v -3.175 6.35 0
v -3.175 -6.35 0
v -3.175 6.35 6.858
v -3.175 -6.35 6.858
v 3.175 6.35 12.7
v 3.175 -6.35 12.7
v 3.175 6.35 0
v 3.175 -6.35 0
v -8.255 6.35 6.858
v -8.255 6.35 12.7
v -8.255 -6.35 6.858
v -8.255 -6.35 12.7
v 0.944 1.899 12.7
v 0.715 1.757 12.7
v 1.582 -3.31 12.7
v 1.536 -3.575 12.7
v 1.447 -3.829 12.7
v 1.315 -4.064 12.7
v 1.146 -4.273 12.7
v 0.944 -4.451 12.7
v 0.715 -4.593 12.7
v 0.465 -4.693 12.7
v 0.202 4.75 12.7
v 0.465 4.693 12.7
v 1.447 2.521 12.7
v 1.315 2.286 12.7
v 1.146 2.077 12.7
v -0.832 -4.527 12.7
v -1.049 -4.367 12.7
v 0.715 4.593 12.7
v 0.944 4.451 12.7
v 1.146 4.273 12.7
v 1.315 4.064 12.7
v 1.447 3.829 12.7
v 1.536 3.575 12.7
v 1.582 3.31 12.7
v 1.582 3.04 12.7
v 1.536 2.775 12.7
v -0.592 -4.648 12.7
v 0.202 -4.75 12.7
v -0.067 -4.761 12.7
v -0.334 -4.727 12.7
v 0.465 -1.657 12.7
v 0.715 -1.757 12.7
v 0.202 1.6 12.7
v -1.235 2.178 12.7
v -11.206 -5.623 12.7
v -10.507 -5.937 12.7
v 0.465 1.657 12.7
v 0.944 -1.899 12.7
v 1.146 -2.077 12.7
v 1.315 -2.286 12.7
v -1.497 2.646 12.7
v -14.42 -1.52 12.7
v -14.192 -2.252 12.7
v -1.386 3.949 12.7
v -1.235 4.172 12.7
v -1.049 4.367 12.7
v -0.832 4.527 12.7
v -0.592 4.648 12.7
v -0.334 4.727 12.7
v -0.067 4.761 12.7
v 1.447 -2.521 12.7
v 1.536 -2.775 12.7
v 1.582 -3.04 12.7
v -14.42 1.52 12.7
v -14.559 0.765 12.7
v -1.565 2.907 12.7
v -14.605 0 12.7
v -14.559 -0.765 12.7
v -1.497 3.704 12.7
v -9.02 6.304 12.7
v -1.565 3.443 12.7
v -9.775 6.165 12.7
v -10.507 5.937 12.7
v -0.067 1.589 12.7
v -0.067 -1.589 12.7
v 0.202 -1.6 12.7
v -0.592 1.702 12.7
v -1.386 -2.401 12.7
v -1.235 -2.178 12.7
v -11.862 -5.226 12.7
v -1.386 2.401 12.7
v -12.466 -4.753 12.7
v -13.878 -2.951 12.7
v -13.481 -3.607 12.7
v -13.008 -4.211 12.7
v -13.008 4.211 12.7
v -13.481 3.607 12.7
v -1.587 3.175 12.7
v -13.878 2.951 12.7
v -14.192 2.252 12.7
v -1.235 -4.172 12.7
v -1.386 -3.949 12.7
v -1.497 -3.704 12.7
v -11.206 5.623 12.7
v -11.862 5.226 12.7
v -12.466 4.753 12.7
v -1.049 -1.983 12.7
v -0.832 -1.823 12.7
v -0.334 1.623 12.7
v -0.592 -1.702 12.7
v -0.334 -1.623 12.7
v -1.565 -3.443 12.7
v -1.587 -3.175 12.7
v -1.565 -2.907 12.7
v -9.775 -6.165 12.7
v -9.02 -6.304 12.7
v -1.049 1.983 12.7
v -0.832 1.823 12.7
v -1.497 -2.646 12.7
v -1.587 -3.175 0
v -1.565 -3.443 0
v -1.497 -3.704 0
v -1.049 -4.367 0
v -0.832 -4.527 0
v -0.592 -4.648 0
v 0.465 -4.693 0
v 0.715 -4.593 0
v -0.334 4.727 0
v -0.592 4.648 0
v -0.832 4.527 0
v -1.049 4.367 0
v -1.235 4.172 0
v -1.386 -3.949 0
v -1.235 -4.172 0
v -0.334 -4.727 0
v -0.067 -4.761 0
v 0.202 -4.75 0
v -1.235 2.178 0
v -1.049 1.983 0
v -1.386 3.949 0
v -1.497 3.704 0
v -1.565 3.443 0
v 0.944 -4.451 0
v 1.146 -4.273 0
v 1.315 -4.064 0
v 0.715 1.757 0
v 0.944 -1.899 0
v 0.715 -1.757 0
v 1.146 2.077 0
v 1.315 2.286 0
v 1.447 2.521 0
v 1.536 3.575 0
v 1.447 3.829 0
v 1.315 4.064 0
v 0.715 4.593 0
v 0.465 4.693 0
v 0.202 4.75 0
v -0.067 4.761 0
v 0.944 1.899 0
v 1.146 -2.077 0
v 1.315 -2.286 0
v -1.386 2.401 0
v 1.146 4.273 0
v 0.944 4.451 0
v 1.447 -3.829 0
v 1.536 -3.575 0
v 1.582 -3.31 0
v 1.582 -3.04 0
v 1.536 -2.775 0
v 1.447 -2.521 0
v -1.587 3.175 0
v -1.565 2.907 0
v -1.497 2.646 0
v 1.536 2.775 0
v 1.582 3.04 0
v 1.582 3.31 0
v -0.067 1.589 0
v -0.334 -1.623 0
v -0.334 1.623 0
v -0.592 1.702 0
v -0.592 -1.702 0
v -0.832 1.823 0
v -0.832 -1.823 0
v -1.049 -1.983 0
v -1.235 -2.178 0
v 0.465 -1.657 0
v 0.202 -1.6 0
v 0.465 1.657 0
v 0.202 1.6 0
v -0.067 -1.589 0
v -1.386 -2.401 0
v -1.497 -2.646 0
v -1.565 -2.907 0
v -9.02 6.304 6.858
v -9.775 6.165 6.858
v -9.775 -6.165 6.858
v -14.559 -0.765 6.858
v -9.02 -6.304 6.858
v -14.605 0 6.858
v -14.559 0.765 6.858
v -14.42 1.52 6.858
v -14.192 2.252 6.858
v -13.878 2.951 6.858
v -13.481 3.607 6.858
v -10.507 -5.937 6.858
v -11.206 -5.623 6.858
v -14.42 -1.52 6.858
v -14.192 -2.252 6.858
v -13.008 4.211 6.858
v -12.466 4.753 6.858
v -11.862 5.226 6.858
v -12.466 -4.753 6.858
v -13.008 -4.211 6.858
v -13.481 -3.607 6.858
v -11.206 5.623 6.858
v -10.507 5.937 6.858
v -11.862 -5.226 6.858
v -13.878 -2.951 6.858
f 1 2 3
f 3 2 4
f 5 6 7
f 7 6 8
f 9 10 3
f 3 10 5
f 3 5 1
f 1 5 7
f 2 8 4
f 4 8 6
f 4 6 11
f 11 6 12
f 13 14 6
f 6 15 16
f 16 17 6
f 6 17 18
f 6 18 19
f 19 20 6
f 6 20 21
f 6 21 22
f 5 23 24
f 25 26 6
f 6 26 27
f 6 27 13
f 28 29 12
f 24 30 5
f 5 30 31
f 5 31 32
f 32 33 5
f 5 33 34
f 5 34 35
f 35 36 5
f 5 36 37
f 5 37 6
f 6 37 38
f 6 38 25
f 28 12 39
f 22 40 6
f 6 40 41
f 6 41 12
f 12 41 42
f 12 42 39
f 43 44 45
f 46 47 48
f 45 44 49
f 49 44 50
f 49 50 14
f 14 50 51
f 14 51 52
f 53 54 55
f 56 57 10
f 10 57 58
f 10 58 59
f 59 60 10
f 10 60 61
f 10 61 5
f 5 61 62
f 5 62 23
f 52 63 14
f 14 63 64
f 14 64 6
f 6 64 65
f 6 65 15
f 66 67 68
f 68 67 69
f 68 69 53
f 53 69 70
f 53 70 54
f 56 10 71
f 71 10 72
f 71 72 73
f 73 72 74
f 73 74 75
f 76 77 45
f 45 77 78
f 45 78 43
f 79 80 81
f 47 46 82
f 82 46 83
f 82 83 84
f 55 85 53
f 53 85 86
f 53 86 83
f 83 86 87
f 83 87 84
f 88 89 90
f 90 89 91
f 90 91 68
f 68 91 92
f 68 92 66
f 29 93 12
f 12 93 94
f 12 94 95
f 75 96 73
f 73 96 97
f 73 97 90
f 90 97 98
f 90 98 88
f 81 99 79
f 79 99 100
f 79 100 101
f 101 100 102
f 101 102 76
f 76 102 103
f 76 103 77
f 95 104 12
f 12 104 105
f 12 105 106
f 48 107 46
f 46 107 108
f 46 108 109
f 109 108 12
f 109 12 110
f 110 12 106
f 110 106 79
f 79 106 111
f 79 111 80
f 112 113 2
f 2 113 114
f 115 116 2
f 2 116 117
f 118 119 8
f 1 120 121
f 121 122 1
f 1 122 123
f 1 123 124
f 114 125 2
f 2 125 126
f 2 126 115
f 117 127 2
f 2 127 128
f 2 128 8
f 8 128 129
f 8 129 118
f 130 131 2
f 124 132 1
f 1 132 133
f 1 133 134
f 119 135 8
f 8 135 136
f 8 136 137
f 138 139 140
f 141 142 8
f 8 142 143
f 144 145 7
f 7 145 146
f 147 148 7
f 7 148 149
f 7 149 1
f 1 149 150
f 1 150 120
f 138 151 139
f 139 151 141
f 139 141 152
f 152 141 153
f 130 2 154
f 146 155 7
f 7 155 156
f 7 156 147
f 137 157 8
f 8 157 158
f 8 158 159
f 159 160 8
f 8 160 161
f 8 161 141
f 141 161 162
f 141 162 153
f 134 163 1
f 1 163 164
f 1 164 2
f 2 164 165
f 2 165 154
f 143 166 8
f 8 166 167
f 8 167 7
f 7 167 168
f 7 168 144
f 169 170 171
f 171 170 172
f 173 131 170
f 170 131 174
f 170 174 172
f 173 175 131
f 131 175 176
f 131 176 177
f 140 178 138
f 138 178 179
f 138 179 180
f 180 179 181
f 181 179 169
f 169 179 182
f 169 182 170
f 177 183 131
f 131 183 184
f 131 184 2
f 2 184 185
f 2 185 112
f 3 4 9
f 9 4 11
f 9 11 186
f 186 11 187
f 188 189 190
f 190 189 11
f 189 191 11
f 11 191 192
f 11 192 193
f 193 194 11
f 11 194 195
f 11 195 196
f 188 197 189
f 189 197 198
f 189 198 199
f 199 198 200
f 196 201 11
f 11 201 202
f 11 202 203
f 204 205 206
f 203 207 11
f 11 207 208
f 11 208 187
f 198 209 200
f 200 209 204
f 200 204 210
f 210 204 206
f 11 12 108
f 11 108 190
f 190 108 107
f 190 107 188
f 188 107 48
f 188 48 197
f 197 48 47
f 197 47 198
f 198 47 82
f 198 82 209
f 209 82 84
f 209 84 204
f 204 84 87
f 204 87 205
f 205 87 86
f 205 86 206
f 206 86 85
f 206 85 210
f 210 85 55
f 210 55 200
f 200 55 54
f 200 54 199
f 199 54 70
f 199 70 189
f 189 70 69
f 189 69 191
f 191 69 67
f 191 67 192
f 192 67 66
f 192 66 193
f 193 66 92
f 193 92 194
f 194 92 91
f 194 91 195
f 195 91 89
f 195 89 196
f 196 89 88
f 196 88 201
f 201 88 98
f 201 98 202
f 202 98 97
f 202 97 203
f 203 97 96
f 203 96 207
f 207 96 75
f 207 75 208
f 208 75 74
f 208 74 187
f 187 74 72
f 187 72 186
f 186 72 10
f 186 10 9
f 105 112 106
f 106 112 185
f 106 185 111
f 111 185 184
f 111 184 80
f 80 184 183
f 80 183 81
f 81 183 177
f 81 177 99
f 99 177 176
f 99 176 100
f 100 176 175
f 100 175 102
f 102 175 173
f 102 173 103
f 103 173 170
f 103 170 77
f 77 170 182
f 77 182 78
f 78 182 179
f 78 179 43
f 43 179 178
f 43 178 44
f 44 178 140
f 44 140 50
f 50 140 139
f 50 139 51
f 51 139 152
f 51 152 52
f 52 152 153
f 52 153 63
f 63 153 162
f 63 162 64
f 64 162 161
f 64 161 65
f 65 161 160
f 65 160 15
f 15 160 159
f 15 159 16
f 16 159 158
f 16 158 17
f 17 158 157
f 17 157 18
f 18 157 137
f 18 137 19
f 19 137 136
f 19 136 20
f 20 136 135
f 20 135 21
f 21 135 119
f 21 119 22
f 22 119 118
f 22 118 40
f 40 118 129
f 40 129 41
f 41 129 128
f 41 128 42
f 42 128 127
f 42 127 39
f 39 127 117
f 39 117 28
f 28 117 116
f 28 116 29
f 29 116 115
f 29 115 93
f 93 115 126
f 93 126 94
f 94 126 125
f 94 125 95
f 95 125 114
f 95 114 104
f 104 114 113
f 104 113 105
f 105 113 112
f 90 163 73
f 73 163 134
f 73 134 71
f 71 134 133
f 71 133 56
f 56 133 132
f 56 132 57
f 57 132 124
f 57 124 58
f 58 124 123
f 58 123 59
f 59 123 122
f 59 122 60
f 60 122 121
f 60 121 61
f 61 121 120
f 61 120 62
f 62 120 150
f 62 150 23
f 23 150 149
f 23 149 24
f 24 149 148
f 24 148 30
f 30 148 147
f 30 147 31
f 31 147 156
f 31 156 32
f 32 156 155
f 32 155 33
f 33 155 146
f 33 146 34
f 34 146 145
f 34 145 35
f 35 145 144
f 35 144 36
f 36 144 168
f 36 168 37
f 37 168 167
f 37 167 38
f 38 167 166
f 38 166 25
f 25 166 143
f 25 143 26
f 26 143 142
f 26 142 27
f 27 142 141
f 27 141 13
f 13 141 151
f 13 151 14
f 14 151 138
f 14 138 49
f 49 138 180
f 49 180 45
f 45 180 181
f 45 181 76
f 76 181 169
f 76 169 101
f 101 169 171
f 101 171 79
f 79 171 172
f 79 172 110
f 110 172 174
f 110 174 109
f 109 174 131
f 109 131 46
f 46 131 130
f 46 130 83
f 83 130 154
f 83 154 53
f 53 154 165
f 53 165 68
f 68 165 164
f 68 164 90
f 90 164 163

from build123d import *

# Parameters (mm, degrees)
SKETCH1_W           = 6.35
SKETCH1_H           = 12.7
BOSS_EXTRUDE1_DEPTH = 13.208
SKETCH2_W           = 6.35
SKETCH2_H           = 12.7
BOSS_EXTRUDE2_DEPTH = 5.08
SKETCH3_R           = 6.35
BOSS_EXTRUDE3_DEPTH = 6.35
SKETCH4_R           = 1.5875
CUT_EXTRUDE1_DEPTH  = 13.208
MOVE_FACE1_BY       = 0.508


with BuildPart() as part:
    # Sketch1 → Boss-Extrude1 (new body)
    with BuildSketch(Plane.XY):
        Rectangle(SKETCH1_W, SKETCH1_H)
    extrude(amount=BOSS_EXTRUDE1_DEPTH)

    # Sketch2 → Boss-Extrude2 (add)
    with BuildSketch(Plane.ZY.offset(3.175)):
        with Locations((10.033, 0)):
            Rectangle(SKETCH2_W, SKETCH2_H)
    extrude(amount=BOSS_EXTRUDE2_DEPTH)

    # Sketch3 → Boss-Extrude3 (add)
    with BuildSketch(Plane.XY.offset(13.208)):
        with Locations((-8.255, 0)):
            Circle(SKETCH3_R)
    extrude(amount=-BOSS_EXTRUDE3_DEPTH)

    # Sketch4 → Cut-Extrude1 (cut)
    with BuildSketch(Plane(origin=(0, 0, 0), x_dir=(-1, 0, 0), z_dir=(0, 0, -1))):
        with Locations((0, 3.175)):
            Circle(SKETCH4_R)
        with Locations((0, -3.175)):
            Circle(SKETCH4_R)
    extrude(amount=-CUT_EXTRUDE1_DEPTH, mode=Mode.SUBTRACT)

    # Move Face1: a face moved inward by 0.508
    extrude(part.faces().sort_by_distance((-5.513545594, 0, 13.208))[0], amount=MOVE_FACE1_BY, dir=(0, 0, -1), mode=Mode.SUBTRACT)


solid = part.part
